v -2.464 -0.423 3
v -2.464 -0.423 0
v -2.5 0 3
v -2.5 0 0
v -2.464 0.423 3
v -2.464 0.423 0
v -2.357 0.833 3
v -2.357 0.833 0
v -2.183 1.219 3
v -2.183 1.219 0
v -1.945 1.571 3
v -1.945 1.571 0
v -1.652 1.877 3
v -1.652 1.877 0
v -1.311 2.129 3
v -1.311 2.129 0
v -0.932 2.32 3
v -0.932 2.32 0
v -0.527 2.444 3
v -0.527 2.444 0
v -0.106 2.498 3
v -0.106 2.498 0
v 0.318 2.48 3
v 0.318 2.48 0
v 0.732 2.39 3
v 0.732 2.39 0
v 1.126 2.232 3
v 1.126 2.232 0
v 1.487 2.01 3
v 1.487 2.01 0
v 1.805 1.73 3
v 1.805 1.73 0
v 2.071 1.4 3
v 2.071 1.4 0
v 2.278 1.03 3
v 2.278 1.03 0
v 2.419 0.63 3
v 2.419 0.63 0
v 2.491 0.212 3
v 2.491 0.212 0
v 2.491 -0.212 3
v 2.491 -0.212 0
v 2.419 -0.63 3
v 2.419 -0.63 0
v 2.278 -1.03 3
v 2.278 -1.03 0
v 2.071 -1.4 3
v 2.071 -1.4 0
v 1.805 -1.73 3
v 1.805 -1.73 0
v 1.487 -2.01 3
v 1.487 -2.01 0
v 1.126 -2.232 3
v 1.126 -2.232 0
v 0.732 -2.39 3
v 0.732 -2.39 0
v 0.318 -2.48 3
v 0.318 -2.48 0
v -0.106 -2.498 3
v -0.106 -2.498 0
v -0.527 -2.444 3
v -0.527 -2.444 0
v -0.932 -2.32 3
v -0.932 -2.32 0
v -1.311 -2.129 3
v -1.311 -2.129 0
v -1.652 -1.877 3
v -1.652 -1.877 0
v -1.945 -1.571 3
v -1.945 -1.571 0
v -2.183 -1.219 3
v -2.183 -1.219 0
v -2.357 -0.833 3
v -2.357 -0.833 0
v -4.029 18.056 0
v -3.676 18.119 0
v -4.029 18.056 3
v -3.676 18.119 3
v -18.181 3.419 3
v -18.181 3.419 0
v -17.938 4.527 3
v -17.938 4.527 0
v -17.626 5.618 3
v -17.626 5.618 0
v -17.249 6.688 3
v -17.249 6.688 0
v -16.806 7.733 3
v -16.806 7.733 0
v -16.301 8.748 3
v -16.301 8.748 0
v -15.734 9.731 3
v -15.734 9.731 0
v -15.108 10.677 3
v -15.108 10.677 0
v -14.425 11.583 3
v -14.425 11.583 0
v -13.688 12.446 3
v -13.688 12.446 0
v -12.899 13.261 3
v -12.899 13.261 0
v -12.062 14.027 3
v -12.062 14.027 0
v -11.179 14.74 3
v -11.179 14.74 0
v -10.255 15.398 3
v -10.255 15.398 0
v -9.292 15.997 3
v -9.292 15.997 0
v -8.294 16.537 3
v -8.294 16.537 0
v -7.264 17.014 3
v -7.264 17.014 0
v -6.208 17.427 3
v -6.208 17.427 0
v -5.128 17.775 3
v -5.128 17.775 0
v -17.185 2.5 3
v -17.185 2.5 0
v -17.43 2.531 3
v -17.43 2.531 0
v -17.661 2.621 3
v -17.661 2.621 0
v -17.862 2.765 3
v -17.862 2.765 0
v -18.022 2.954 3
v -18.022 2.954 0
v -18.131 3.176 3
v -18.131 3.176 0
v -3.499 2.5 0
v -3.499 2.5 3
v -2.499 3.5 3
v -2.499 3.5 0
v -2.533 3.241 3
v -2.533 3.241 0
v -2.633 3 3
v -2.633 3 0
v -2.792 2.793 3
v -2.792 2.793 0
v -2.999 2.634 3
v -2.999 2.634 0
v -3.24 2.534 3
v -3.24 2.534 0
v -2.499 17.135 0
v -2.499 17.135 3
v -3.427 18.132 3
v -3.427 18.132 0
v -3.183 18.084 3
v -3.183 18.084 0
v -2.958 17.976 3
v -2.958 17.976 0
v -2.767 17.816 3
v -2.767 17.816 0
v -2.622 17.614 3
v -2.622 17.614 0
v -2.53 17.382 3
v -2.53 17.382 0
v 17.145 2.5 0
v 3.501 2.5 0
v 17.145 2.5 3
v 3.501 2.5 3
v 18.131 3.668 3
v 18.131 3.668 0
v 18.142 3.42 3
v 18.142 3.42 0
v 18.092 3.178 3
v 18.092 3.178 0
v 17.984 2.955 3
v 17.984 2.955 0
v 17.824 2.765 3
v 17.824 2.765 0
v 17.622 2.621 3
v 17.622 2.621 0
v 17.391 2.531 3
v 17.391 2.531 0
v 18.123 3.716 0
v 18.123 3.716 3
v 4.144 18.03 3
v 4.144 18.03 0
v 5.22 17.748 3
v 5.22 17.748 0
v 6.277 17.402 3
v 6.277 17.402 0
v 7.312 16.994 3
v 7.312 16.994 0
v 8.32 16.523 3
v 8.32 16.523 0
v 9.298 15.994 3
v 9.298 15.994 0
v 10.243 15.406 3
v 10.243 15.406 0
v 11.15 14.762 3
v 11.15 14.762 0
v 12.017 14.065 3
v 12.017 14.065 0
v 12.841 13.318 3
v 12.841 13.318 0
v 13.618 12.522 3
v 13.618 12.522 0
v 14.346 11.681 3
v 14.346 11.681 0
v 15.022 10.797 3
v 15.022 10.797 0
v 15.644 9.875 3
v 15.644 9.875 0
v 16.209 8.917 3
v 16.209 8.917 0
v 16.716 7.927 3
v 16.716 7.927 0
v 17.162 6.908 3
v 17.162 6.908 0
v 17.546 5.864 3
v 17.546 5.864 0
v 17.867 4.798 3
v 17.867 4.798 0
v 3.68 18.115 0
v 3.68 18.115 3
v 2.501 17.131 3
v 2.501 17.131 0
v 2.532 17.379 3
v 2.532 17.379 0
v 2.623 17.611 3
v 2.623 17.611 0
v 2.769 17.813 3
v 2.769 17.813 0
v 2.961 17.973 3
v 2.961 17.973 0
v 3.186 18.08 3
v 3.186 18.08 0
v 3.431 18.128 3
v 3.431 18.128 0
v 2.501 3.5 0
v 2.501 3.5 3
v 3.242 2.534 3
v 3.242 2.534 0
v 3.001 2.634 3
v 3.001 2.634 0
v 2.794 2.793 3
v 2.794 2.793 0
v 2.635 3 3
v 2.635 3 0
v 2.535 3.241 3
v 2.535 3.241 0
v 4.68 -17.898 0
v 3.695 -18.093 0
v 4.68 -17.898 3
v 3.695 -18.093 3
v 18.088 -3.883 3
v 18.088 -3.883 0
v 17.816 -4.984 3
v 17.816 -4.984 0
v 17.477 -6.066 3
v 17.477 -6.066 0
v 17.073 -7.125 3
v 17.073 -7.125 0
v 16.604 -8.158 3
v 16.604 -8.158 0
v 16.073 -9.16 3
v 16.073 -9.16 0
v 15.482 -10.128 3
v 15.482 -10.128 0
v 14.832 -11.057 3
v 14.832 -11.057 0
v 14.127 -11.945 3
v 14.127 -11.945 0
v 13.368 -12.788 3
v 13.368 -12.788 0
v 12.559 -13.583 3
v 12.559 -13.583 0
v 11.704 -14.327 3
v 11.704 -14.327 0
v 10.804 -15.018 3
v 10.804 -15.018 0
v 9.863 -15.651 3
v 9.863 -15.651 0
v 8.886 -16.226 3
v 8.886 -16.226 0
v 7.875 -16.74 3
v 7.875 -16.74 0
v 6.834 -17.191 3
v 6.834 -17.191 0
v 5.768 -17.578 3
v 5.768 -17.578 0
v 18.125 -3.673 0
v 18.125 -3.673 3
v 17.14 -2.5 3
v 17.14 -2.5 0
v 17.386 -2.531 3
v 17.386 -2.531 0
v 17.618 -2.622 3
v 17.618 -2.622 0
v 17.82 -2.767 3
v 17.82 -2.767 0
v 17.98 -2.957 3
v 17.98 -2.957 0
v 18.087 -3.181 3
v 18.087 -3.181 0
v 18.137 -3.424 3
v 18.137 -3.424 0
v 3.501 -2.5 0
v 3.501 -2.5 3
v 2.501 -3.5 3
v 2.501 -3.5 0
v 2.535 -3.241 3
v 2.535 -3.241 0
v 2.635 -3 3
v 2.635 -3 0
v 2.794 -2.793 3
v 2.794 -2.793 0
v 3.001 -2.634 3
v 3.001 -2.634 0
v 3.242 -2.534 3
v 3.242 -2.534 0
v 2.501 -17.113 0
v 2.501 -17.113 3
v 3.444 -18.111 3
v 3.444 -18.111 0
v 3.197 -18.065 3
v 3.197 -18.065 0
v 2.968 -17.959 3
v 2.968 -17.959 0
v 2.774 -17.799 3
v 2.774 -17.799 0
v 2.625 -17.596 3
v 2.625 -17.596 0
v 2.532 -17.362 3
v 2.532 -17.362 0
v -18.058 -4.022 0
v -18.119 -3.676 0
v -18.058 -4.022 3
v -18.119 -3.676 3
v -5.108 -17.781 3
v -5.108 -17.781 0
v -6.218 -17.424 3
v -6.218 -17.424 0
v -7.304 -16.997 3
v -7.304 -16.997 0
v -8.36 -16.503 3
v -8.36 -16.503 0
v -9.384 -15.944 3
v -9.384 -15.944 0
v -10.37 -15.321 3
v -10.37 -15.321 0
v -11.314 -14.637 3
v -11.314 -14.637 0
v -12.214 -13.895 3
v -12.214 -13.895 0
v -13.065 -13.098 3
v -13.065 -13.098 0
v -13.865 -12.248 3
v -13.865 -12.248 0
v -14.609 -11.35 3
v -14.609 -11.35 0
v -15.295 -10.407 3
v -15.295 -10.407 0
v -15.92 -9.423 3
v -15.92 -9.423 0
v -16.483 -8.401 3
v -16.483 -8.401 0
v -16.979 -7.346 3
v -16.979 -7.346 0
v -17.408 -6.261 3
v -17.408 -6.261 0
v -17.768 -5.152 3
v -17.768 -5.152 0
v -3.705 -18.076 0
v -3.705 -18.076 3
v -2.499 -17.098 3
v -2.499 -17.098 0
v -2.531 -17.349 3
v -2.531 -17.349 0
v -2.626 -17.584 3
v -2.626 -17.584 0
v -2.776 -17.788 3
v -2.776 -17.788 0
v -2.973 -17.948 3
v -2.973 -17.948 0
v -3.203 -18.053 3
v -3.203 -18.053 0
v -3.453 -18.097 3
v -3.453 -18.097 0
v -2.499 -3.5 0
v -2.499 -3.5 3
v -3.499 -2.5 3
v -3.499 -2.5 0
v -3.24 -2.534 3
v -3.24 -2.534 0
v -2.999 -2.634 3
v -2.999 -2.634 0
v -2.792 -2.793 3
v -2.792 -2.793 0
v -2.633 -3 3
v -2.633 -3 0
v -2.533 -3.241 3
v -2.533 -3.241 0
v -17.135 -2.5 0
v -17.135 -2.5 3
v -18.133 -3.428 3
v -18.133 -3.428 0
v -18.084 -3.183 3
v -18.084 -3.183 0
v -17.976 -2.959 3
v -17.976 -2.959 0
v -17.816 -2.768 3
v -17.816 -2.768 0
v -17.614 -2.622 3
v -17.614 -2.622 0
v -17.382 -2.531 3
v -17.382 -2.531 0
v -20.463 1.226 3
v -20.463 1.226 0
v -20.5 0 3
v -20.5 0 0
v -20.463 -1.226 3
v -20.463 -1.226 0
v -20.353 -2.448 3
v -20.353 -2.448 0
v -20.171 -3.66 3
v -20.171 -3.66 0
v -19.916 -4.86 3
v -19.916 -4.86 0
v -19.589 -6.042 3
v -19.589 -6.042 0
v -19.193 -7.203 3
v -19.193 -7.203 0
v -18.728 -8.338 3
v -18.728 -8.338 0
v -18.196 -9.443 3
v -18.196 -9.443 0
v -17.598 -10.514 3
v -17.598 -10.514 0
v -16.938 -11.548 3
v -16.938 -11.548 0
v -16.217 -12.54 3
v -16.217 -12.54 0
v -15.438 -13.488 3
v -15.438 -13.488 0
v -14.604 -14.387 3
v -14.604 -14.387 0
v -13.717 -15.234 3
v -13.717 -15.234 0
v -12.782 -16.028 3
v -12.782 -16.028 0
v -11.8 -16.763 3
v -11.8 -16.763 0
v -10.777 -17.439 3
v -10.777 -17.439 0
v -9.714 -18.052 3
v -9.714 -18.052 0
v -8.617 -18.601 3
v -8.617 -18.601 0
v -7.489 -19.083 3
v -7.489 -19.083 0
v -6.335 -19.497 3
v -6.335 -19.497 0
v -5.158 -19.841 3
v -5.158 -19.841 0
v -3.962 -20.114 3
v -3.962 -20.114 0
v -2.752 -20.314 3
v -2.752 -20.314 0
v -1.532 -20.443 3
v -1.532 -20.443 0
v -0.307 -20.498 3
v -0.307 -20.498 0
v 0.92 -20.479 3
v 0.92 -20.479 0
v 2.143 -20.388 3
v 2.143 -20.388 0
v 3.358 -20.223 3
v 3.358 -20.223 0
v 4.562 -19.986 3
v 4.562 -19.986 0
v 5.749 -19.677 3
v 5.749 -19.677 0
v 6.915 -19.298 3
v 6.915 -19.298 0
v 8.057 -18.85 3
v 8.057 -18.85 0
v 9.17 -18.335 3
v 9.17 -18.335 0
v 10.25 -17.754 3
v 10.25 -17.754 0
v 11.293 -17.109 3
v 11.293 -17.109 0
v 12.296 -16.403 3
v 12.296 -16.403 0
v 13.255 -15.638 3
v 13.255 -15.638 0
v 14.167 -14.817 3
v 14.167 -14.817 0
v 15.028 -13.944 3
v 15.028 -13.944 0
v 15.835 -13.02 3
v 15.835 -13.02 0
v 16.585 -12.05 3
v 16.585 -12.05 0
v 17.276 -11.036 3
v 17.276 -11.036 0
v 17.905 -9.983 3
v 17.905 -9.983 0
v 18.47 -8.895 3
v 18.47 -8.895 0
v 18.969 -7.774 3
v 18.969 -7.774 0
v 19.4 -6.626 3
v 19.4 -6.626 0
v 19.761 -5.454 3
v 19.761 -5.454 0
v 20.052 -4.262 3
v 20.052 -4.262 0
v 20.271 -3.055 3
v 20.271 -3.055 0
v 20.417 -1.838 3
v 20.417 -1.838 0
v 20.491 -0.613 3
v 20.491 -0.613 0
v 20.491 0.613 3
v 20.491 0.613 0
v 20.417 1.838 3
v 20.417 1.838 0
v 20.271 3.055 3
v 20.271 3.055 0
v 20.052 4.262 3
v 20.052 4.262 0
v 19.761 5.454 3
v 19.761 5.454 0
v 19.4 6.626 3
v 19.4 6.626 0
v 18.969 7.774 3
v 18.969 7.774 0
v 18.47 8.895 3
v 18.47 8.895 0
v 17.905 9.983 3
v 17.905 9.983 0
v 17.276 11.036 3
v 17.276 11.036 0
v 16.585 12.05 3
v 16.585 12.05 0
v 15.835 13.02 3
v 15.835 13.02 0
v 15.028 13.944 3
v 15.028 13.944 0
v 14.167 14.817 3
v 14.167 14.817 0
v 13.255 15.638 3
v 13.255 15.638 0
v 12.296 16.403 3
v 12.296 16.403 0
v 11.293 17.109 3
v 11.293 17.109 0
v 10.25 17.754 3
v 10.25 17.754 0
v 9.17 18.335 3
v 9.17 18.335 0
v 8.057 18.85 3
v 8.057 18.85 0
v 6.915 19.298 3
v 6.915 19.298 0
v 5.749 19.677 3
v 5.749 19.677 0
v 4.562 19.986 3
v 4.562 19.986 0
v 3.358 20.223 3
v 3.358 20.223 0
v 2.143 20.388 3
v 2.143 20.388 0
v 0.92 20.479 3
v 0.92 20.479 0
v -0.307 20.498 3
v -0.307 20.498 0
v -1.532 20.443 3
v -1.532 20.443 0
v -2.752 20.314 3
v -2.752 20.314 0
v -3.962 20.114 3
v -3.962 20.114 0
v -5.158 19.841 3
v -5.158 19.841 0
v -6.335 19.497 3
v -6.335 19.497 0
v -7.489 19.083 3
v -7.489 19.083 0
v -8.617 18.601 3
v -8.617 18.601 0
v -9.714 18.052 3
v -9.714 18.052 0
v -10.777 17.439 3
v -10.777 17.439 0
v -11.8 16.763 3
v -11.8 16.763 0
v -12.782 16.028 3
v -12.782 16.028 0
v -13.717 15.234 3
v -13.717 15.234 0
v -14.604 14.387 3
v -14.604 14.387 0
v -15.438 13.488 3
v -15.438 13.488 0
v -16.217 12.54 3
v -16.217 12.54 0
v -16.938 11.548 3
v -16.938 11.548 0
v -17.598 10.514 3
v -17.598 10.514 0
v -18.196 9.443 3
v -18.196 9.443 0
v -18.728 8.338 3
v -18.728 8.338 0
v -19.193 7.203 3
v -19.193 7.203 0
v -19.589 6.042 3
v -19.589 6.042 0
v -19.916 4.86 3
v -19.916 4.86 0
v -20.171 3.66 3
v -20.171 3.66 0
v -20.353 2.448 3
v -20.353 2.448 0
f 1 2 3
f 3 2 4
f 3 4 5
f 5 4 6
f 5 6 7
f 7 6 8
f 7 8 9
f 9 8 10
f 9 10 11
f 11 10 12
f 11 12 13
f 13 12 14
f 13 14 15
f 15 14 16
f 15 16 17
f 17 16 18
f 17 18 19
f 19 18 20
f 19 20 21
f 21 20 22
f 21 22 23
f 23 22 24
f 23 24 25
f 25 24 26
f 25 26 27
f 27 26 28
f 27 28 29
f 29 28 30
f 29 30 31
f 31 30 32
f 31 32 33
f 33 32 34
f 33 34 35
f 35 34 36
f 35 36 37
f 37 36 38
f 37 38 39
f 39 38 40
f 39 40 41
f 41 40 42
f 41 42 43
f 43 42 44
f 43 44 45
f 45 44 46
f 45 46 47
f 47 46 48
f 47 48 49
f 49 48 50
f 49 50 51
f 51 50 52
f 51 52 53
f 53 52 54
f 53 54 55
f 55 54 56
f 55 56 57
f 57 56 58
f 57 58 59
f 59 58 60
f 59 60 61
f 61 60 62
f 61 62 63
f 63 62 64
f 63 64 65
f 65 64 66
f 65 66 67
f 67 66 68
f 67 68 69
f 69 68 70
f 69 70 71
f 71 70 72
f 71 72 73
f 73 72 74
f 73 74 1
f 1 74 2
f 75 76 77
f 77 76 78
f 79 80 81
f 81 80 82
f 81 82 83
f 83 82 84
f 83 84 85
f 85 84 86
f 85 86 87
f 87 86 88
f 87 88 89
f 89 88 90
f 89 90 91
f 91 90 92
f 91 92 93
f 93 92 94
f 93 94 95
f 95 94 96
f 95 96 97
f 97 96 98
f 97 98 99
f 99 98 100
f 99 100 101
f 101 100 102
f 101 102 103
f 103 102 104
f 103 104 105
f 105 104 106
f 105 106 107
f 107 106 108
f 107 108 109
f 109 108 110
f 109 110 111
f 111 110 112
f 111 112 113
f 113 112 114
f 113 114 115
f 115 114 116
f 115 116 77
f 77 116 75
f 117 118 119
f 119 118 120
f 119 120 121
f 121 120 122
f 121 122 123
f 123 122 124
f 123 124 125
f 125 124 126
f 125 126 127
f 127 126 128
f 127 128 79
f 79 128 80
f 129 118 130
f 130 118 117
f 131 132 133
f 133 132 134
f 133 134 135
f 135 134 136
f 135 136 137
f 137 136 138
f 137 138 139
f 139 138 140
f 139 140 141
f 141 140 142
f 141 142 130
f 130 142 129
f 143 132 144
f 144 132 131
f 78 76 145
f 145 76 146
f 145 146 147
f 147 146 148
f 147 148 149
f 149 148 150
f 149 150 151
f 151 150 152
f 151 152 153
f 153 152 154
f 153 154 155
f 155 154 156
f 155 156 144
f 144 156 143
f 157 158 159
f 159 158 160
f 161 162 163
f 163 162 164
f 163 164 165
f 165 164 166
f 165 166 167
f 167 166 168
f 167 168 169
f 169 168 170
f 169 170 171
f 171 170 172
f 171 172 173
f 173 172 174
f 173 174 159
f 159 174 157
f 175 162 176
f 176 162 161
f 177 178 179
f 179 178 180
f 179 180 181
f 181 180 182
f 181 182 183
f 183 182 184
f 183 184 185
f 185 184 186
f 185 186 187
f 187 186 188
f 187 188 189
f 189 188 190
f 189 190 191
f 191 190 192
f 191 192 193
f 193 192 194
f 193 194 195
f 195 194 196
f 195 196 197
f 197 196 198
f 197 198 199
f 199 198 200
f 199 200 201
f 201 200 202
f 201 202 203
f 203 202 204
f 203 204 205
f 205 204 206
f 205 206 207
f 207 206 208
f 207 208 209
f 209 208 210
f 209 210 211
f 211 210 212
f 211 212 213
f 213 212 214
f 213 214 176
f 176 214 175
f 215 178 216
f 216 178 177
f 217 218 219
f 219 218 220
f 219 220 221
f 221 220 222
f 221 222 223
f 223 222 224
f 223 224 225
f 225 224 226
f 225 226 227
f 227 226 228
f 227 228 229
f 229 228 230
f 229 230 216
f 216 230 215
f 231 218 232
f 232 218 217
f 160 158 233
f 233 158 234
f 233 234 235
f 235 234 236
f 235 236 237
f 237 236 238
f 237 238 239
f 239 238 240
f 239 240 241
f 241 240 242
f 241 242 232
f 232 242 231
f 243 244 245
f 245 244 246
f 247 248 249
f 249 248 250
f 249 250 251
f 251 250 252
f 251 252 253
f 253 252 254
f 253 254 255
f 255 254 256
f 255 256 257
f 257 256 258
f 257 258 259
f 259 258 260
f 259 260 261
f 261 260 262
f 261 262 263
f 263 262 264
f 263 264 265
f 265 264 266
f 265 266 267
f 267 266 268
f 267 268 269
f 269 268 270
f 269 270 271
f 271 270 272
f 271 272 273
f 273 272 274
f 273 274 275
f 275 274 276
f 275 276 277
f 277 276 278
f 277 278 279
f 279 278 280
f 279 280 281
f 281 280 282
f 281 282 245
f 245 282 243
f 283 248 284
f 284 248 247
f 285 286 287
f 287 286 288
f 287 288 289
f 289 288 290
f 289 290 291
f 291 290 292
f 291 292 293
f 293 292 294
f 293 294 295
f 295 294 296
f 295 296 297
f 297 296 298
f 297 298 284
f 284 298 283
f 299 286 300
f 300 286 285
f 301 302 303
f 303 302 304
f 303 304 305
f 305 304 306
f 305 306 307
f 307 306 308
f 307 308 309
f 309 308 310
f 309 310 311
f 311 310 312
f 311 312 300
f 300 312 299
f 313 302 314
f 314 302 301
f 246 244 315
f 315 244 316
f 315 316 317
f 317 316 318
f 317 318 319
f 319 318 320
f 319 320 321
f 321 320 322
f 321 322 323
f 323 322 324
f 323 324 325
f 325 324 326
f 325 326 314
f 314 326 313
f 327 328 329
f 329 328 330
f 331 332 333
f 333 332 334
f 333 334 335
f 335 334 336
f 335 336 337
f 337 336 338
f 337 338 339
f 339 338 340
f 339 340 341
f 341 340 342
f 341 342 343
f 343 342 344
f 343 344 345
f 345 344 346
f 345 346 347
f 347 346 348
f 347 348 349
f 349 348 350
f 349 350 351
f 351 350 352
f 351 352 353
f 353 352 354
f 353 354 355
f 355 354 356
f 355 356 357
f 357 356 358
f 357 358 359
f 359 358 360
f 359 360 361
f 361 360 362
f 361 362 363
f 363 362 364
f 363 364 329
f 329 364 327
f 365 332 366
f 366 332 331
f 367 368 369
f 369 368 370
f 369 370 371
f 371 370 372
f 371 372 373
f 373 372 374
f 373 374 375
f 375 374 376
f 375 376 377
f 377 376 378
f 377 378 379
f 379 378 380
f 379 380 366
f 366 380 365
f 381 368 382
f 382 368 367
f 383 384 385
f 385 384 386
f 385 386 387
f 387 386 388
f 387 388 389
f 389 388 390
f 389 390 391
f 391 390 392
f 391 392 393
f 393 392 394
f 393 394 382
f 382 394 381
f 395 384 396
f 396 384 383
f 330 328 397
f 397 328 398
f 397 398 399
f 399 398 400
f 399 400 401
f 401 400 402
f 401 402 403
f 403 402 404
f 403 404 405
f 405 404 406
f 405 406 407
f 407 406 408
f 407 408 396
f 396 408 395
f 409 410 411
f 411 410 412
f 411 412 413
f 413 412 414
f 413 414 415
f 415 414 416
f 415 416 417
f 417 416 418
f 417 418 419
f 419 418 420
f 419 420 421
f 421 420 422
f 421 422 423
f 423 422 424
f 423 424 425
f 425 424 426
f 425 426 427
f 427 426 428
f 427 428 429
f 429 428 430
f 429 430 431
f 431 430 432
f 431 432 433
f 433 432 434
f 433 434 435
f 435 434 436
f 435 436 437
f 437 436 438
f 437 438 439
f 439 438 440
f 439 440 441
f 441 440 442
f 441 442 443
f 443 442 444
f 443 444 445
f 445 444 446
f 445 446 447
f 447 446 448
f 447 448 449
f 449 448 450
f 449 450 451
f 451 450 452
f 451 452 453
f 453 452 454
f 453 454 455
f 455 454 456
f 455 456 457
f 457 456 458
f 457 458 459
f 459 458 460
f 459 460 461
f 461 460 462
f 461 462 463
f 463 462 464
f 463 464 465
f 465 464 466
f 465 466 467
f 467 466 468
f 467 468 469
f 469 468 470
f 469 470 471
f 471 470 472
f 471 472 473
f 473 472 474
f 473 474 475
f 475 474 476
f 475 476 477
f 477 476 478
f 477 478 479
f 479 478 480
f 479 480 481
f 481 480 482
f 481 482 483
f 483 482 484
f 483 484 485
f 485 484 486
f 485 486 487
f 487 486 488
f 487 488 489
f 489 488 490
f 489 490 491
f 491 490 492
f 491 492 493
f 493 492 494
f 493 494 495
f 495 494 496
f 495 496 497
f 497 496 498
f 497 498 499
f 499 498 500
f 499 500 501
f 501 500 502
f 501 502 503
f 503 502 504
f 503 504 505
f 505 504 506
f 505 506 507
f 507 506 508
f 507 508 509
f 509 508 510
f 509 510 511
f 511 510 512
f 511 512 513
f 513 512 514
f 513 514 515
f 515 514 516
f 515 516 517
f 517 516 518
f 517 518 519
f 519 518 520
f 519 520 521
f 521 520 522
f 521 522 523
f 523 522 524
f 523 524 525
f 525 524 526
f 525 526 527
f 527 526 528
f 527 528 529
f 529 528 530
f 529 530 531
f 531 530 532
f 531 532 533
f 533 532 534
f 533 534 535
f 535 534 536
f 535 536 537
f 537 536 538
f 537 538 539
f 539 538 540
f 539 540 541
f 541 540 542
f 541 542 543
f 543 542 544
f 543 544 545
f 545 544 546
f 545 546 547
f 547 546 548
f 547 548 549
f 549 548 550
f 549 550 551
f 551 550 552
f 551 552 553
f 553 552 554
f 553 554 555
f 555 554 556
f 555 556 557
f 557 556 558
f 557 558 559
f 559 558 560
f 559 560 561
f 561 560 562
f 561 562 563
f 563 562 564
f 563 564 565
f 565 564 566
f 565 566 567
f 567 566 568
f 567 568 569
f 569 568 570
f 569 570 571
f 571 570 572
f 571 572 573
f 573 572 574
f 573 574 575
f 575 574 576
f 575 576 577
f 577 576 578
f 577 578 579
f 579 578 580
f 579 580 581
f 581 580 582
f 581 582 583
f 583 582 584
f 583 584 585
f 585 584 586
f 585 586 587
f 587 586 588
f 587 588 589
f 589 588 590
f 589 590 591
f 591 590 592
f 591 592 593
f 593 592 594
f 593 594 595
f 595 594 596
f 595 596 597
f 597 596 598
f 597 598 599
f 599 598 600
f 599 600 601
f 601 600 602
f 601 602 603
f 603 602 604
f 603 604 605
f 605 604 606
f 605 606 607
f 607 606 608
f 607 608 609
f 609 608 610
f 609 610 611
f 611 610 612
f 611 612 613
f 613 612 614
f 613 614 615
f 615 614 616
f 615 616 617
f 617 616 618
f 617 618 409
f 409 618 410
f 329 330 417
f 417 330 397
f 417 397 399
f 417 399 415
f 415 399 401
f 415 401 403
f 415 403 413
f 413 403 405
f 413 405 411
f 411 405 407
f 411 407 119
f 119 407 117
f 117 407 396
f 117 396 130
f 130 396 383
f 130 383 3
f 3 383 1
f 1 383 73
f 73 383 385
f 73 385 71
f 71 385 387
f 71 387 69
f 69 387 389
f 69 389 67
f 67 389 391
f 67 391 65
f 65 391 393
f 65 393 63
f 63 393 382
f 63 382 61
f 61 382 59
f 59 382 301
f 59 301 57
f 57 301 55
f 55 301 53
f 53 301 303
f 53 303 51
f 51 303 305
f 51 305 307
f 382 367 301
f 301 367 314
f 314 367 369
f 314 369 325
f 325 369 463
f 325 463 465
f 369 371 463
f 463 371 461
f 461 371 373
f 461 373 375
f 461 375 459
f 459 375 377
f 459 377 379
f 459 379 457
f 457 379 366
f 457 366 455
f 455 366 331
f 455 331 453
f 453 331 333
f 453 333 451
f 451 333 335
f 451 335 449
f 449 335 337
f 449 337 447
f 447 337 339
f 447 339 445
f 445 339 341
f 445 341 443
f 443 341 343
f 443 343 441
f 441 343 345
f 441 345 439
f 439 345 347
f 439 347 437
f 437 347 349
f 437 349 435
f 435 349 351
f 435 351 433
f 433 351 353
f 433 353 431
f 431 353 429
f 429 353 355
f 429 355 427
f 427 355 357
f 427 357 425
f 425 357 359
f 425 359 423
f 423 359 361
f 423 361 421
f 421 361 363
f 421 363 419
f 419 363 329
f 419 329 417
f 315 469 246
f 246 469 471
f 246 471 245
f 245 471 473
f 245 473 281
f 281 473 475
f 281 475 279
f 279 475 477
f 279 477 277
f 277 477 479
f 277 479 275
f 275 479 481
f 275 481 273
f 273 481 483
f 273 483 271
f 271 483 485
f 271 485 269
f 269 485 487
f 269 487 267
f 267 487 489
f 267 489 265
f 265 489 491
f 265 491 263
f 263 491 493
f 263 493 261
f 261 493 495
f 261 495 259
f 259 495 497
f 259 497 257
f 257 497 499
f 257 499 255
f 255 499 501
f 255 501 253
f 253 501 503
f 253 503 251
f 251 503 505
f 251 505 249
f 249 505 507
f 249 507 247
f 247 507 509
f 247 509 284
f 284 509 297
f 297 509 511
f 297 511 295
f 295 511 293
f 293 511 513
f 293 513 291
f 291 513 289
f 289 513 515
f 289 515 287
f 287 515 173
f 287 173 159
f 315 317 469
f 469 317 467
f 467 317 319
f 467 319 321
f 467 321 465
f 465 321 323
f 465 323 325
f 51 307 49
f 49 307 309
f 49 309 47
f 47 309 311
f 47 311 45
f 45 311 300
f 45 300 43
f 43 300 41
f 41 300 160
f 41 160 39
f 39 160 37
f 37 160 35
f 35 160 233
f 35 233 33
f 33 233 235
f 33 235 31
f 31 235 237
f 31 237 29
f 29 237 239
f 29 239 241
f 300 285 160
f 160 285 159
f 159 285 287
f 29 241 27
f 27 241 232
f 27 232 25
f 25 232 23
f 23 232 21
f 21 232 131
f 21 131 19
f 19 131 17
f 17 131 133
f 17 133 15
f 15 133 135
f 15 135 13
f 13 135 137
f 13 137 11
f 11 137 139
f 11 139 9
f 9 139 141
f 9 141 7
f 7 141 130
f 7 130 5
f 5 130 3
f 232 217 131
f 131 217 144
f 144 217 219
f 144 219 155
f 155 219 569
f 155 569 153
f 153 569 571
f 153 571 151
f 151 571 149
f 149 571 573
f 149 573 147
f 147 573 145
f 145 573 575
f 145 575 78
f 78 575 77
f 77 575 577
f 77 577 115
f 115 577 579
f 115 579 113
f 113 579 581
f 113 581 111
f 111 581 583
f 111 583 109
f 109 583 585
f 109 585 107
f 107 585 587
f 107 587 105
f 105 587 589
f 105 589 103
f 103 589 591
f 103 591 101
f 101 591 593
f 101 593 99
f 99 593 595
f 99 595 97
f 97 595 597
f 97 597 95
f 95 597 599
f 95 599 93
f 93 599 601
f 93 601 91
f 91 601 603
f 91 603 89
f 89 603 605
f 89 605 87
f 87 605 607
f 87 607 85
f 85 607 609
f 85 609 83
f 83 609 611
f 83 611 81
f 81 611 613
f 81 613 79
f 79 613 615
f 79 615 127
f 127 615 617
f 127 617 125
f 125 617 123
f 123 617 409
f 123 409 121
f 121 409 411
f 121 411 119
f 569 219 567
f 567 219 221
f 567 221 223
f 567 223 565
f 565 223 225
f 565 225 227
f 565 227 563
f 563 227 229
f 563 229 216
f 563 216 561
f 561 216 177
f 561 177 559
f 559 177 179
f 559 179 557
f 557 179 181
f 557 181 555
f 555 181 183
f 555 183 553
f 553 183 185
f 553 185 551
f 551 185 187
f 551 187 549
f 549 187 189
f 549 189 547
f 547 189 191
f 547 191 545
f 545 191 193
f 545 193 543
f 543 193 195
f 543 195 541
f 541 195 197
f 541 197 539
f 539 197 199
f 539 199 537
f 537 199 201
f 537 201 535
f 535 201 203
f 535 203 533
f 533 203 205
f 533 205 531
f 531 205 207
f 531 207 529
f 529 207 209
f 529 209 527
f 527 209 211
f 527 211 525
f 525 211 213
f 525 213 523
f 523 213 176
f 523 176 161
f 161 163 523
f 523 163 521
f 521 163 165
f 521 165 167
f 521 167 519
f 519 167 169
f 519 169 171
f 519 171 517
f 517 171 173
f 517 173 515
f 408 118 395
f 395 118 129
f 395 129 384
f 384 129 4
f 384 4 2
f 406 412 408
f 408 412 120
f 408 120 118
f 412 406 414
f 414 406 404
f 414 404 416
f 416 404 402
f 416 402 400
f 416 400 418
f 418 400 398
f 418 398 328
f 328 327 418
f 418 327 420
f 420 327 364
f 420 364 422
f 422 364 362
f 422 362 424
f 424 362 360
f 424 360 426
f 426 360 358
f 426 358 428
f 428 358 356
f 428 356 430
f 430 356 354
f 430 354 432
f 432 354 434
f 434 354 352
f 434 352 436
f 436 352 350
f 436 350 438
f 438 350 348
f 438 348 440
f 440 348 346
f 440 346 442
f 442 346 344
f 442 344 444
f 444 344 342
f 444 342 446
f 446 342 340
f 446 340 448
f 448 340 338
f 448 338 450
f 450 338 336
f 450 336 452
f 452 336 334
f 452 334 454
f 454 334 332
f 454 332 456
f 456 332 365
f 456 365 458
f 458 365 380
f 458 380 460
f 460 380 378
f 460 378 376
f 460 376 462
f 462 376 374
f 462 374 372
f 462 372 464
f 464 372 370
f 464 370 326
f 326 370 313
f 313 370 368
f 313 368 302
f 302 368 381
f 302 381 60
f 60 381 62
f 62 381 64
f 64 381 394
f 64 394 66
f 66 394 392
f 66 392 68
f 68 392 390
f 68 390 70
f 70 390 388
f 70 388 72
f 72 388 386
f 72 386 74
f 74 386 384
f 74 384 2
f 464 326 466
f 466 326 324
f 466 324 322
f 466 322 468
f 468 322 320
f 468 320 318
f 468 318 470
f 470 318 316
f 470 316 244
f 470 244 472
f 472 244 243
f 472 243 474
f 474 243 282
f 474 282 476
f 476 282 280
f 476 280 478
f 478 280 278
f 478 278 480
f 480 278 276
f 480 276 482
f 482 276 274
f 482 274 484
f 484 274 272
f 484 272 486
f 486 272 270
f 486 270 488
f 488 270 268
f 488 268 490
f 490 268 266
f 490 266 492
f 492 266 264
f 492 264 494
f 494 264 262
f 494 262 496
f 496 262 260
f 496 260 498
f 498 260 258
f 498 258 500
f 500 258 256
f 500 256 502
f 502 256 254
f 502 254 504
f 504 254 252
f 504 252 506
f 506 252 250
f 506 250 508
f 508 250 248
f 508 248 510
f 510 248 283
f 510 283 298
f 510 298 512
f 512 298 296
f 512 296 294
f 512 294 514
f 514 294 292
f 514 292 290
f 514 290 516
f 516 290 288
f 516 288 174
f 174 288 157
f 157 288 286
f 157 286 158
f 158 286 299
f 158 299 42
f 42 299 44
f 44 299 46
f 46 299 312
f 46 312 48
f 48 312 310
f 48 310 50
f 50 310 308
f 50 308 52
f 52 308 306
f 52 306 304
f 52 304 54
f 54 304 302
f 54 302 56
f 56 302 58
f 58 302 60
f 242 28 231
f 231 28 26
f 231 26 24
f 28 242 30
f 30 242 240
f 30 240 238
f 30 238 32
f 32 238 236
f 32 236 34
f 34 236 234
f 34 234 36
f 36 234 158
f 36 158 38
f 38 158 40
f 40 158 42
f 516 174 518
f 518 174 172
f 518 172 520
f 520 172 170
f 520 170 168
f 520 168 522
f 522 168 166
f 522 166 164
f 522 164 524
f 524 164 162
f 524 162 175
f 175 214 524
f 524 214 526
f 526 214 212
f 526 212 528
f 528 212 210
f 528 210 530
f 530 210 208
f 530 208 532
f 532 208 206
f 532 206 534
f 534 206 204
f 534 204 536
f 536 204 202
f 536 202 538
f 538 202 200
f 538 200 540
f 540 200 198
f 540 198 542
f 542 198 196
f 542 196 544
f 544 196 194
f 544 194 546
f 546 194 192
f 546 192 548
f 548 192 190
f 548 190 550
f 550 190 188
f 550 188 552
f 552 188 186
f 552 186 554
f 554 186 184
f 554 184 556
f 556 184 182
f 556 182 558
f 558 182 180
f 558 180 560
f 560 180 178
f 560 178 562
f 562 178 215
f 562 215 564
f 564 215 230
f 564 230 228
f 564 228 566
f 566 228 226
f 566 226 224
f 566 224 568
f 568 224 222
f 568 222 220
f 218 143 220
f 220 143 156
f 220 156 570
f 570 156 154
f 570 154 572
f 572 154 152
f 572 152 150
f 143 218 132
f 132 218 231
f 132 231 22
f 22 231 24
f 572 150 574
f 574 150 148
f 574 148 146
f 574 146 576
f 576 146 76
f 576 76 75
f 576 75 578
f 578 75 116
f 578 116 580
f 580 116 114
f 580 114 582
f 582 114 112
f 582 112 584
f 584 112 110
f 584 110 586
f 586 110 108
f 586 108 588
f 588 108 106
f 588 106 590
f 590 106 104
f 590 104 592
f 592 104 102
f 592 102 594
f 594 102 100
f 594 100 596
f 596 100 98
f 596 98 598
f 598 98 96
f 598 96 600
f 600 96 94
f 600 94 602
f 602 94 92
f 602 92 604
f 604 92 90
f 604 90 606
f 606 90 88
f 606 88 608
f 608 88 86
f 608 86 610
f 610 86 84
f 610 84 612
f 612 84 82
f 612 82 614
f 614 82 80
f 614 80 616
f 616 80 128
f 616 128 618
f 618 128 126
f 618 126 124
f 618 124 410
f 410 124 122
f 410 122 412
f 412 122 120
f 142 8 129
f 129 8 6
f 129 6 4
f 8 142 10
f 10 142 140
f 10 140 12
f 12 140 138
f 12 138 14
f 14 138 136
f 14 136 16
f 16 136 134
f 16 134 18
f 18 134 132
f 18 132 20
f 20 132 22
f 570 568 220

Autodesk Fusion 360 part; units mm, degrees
sketch "Sketch1" plane through (0, 0, 0) normal (0, 0, 1) x (1, 0, 0)
  circle A0 centre (0, 0) radius 20.5
  circle A1 centre (0, 0) radius 2.5
  line L0 (2.5007, 3.5) -> (2.5007, 17.1309)
  line L1 (-2.4993, 17.135) -> (-2.4993, 3.5)
  line L2 (3.5007, 2.5) -> (17.1454, 2.5)
  line L3 (17.1398, -2.5) -> (3.5007, -2.5)
  line L4 (2.5007, 0.0585) -> (2.4993, 0.0585)
  line L5 (-2.4993, -3.5) -> (-2.4993, -17.0978)
  line L6 (2.5007, -17.1125) -> (2.5007, -3.5)
  line L7 (-3.4993, 2.5) -> (-17.1847, 2.5)
  line L8 (-17.1351, -2.5) -> (-3.4993, -2.5)
  arc A2 (-3.4993, 2.5) -> (-2.4993, 3.5) centre (-3.4993, 3.5) ccw
  arc A3 (2.5007, 3.5) -> (3.5007, 2.5) centre (3.5007, 3.5) ccw
  arc A4 (3.5007, -2.5) -> (2.5007, -3.5) centre (3.5007, -3.5) ccw
  arc A5 (-2.4993, -3.5) -> (-3.4993, -2.5) centre (-3.4993, -3.5) ccw
  line L9 (3.6805, 18.1146) -> (4.1439, 18.0299)
  arc A6 (3.6805, 18.1146) -> (2.5007, 17.1309) centre (3.5007, 17.1309) ccw
  line L10 (-3.6759, 18.1193) -> (-4.0285, 18.0561)
  arc A7 (-2.4993, 17.135) -> (-3.6759, 18.1193) centre (-3.4993, 17.135) ccw
  line L11 (-18.1755, 3.6351) -> (-18.1744, 3.6434)
  arc A8 (-18.1755, 3.6351) -> (-17.1847, 2.5) centre (-17.1847, 3.5) ccw
  line L12 (-18.1194, -3.6764) -> (-18.0575, -4.0219)
  arc A9 (-17.1351, -2.5) -> (-18.1194, -3.6764) centre (-17.1351, -3.5) ccw
  line L13 (-3.7055, -18.0763) -> (-5.1082, -17.7808)
  line L14 (3.6951, -18.0935) -> (4.6802, -17.8982)
  arc A10 (-3.7055, -18.0763) -> (-2.4993, -17.0978) centre (-3.4993, -17.0978) ccw
  arc A11 (2.5007, -17.1125) -> (3.6951, -18.0935) centre (3.5007, -17.1125) ccw
  line L15 (18.1311, 3.6681) -> (18.123, 3.7158)
  line L16 (18.1248, -3.6726) -> (18.088, -3.8826)
  arc A12 (18.1248, -3.6726) -> (17.1398, -2.5) centre (17.1398, -3.5) ccw
  arc A13 (17.1454, 2.5) -> (18.1311, 3.6681) centre (17.1454, 3.5) ccw
  arc A14 (18.123, 3.7158) -> (4.1439, 18.0299) centre (0, 0) ccw
  arc A15 (4.6802, -17.8982) -> (18.088, -3.8826) centre (0, 0) ccw
  arc A16 (-4.0285, 18.0561) -> (-18.1814, 3.4188) centre (0, 0) ccw
  arc A17 (-18.0575, -4.0219) -> (-5.1082, -17.7808) centre (0, 0) ccw
  line L17 (2.4993, 0.0585) -> (2.5007, 0.0585)
  dimension "d1" = 41
  dimension "d2" = 37
  dimension "d3" = 5
  dimension "d8" = 1
  dimension "d9" = 1
  dimension "d10" = 1
  dimension "d11" = 1
  dimension "d12" = 1
  dimension "d13" = 1
  dimension "d14" = 1
  dimension "d15" = 1
  dimension "d16" = 1
  dimension "d17" = 1
  dimension "d18" = 1
  dimension "d19" = 1
extrude "Extrude1" add sketch "Sketch1" along normal blind 3
